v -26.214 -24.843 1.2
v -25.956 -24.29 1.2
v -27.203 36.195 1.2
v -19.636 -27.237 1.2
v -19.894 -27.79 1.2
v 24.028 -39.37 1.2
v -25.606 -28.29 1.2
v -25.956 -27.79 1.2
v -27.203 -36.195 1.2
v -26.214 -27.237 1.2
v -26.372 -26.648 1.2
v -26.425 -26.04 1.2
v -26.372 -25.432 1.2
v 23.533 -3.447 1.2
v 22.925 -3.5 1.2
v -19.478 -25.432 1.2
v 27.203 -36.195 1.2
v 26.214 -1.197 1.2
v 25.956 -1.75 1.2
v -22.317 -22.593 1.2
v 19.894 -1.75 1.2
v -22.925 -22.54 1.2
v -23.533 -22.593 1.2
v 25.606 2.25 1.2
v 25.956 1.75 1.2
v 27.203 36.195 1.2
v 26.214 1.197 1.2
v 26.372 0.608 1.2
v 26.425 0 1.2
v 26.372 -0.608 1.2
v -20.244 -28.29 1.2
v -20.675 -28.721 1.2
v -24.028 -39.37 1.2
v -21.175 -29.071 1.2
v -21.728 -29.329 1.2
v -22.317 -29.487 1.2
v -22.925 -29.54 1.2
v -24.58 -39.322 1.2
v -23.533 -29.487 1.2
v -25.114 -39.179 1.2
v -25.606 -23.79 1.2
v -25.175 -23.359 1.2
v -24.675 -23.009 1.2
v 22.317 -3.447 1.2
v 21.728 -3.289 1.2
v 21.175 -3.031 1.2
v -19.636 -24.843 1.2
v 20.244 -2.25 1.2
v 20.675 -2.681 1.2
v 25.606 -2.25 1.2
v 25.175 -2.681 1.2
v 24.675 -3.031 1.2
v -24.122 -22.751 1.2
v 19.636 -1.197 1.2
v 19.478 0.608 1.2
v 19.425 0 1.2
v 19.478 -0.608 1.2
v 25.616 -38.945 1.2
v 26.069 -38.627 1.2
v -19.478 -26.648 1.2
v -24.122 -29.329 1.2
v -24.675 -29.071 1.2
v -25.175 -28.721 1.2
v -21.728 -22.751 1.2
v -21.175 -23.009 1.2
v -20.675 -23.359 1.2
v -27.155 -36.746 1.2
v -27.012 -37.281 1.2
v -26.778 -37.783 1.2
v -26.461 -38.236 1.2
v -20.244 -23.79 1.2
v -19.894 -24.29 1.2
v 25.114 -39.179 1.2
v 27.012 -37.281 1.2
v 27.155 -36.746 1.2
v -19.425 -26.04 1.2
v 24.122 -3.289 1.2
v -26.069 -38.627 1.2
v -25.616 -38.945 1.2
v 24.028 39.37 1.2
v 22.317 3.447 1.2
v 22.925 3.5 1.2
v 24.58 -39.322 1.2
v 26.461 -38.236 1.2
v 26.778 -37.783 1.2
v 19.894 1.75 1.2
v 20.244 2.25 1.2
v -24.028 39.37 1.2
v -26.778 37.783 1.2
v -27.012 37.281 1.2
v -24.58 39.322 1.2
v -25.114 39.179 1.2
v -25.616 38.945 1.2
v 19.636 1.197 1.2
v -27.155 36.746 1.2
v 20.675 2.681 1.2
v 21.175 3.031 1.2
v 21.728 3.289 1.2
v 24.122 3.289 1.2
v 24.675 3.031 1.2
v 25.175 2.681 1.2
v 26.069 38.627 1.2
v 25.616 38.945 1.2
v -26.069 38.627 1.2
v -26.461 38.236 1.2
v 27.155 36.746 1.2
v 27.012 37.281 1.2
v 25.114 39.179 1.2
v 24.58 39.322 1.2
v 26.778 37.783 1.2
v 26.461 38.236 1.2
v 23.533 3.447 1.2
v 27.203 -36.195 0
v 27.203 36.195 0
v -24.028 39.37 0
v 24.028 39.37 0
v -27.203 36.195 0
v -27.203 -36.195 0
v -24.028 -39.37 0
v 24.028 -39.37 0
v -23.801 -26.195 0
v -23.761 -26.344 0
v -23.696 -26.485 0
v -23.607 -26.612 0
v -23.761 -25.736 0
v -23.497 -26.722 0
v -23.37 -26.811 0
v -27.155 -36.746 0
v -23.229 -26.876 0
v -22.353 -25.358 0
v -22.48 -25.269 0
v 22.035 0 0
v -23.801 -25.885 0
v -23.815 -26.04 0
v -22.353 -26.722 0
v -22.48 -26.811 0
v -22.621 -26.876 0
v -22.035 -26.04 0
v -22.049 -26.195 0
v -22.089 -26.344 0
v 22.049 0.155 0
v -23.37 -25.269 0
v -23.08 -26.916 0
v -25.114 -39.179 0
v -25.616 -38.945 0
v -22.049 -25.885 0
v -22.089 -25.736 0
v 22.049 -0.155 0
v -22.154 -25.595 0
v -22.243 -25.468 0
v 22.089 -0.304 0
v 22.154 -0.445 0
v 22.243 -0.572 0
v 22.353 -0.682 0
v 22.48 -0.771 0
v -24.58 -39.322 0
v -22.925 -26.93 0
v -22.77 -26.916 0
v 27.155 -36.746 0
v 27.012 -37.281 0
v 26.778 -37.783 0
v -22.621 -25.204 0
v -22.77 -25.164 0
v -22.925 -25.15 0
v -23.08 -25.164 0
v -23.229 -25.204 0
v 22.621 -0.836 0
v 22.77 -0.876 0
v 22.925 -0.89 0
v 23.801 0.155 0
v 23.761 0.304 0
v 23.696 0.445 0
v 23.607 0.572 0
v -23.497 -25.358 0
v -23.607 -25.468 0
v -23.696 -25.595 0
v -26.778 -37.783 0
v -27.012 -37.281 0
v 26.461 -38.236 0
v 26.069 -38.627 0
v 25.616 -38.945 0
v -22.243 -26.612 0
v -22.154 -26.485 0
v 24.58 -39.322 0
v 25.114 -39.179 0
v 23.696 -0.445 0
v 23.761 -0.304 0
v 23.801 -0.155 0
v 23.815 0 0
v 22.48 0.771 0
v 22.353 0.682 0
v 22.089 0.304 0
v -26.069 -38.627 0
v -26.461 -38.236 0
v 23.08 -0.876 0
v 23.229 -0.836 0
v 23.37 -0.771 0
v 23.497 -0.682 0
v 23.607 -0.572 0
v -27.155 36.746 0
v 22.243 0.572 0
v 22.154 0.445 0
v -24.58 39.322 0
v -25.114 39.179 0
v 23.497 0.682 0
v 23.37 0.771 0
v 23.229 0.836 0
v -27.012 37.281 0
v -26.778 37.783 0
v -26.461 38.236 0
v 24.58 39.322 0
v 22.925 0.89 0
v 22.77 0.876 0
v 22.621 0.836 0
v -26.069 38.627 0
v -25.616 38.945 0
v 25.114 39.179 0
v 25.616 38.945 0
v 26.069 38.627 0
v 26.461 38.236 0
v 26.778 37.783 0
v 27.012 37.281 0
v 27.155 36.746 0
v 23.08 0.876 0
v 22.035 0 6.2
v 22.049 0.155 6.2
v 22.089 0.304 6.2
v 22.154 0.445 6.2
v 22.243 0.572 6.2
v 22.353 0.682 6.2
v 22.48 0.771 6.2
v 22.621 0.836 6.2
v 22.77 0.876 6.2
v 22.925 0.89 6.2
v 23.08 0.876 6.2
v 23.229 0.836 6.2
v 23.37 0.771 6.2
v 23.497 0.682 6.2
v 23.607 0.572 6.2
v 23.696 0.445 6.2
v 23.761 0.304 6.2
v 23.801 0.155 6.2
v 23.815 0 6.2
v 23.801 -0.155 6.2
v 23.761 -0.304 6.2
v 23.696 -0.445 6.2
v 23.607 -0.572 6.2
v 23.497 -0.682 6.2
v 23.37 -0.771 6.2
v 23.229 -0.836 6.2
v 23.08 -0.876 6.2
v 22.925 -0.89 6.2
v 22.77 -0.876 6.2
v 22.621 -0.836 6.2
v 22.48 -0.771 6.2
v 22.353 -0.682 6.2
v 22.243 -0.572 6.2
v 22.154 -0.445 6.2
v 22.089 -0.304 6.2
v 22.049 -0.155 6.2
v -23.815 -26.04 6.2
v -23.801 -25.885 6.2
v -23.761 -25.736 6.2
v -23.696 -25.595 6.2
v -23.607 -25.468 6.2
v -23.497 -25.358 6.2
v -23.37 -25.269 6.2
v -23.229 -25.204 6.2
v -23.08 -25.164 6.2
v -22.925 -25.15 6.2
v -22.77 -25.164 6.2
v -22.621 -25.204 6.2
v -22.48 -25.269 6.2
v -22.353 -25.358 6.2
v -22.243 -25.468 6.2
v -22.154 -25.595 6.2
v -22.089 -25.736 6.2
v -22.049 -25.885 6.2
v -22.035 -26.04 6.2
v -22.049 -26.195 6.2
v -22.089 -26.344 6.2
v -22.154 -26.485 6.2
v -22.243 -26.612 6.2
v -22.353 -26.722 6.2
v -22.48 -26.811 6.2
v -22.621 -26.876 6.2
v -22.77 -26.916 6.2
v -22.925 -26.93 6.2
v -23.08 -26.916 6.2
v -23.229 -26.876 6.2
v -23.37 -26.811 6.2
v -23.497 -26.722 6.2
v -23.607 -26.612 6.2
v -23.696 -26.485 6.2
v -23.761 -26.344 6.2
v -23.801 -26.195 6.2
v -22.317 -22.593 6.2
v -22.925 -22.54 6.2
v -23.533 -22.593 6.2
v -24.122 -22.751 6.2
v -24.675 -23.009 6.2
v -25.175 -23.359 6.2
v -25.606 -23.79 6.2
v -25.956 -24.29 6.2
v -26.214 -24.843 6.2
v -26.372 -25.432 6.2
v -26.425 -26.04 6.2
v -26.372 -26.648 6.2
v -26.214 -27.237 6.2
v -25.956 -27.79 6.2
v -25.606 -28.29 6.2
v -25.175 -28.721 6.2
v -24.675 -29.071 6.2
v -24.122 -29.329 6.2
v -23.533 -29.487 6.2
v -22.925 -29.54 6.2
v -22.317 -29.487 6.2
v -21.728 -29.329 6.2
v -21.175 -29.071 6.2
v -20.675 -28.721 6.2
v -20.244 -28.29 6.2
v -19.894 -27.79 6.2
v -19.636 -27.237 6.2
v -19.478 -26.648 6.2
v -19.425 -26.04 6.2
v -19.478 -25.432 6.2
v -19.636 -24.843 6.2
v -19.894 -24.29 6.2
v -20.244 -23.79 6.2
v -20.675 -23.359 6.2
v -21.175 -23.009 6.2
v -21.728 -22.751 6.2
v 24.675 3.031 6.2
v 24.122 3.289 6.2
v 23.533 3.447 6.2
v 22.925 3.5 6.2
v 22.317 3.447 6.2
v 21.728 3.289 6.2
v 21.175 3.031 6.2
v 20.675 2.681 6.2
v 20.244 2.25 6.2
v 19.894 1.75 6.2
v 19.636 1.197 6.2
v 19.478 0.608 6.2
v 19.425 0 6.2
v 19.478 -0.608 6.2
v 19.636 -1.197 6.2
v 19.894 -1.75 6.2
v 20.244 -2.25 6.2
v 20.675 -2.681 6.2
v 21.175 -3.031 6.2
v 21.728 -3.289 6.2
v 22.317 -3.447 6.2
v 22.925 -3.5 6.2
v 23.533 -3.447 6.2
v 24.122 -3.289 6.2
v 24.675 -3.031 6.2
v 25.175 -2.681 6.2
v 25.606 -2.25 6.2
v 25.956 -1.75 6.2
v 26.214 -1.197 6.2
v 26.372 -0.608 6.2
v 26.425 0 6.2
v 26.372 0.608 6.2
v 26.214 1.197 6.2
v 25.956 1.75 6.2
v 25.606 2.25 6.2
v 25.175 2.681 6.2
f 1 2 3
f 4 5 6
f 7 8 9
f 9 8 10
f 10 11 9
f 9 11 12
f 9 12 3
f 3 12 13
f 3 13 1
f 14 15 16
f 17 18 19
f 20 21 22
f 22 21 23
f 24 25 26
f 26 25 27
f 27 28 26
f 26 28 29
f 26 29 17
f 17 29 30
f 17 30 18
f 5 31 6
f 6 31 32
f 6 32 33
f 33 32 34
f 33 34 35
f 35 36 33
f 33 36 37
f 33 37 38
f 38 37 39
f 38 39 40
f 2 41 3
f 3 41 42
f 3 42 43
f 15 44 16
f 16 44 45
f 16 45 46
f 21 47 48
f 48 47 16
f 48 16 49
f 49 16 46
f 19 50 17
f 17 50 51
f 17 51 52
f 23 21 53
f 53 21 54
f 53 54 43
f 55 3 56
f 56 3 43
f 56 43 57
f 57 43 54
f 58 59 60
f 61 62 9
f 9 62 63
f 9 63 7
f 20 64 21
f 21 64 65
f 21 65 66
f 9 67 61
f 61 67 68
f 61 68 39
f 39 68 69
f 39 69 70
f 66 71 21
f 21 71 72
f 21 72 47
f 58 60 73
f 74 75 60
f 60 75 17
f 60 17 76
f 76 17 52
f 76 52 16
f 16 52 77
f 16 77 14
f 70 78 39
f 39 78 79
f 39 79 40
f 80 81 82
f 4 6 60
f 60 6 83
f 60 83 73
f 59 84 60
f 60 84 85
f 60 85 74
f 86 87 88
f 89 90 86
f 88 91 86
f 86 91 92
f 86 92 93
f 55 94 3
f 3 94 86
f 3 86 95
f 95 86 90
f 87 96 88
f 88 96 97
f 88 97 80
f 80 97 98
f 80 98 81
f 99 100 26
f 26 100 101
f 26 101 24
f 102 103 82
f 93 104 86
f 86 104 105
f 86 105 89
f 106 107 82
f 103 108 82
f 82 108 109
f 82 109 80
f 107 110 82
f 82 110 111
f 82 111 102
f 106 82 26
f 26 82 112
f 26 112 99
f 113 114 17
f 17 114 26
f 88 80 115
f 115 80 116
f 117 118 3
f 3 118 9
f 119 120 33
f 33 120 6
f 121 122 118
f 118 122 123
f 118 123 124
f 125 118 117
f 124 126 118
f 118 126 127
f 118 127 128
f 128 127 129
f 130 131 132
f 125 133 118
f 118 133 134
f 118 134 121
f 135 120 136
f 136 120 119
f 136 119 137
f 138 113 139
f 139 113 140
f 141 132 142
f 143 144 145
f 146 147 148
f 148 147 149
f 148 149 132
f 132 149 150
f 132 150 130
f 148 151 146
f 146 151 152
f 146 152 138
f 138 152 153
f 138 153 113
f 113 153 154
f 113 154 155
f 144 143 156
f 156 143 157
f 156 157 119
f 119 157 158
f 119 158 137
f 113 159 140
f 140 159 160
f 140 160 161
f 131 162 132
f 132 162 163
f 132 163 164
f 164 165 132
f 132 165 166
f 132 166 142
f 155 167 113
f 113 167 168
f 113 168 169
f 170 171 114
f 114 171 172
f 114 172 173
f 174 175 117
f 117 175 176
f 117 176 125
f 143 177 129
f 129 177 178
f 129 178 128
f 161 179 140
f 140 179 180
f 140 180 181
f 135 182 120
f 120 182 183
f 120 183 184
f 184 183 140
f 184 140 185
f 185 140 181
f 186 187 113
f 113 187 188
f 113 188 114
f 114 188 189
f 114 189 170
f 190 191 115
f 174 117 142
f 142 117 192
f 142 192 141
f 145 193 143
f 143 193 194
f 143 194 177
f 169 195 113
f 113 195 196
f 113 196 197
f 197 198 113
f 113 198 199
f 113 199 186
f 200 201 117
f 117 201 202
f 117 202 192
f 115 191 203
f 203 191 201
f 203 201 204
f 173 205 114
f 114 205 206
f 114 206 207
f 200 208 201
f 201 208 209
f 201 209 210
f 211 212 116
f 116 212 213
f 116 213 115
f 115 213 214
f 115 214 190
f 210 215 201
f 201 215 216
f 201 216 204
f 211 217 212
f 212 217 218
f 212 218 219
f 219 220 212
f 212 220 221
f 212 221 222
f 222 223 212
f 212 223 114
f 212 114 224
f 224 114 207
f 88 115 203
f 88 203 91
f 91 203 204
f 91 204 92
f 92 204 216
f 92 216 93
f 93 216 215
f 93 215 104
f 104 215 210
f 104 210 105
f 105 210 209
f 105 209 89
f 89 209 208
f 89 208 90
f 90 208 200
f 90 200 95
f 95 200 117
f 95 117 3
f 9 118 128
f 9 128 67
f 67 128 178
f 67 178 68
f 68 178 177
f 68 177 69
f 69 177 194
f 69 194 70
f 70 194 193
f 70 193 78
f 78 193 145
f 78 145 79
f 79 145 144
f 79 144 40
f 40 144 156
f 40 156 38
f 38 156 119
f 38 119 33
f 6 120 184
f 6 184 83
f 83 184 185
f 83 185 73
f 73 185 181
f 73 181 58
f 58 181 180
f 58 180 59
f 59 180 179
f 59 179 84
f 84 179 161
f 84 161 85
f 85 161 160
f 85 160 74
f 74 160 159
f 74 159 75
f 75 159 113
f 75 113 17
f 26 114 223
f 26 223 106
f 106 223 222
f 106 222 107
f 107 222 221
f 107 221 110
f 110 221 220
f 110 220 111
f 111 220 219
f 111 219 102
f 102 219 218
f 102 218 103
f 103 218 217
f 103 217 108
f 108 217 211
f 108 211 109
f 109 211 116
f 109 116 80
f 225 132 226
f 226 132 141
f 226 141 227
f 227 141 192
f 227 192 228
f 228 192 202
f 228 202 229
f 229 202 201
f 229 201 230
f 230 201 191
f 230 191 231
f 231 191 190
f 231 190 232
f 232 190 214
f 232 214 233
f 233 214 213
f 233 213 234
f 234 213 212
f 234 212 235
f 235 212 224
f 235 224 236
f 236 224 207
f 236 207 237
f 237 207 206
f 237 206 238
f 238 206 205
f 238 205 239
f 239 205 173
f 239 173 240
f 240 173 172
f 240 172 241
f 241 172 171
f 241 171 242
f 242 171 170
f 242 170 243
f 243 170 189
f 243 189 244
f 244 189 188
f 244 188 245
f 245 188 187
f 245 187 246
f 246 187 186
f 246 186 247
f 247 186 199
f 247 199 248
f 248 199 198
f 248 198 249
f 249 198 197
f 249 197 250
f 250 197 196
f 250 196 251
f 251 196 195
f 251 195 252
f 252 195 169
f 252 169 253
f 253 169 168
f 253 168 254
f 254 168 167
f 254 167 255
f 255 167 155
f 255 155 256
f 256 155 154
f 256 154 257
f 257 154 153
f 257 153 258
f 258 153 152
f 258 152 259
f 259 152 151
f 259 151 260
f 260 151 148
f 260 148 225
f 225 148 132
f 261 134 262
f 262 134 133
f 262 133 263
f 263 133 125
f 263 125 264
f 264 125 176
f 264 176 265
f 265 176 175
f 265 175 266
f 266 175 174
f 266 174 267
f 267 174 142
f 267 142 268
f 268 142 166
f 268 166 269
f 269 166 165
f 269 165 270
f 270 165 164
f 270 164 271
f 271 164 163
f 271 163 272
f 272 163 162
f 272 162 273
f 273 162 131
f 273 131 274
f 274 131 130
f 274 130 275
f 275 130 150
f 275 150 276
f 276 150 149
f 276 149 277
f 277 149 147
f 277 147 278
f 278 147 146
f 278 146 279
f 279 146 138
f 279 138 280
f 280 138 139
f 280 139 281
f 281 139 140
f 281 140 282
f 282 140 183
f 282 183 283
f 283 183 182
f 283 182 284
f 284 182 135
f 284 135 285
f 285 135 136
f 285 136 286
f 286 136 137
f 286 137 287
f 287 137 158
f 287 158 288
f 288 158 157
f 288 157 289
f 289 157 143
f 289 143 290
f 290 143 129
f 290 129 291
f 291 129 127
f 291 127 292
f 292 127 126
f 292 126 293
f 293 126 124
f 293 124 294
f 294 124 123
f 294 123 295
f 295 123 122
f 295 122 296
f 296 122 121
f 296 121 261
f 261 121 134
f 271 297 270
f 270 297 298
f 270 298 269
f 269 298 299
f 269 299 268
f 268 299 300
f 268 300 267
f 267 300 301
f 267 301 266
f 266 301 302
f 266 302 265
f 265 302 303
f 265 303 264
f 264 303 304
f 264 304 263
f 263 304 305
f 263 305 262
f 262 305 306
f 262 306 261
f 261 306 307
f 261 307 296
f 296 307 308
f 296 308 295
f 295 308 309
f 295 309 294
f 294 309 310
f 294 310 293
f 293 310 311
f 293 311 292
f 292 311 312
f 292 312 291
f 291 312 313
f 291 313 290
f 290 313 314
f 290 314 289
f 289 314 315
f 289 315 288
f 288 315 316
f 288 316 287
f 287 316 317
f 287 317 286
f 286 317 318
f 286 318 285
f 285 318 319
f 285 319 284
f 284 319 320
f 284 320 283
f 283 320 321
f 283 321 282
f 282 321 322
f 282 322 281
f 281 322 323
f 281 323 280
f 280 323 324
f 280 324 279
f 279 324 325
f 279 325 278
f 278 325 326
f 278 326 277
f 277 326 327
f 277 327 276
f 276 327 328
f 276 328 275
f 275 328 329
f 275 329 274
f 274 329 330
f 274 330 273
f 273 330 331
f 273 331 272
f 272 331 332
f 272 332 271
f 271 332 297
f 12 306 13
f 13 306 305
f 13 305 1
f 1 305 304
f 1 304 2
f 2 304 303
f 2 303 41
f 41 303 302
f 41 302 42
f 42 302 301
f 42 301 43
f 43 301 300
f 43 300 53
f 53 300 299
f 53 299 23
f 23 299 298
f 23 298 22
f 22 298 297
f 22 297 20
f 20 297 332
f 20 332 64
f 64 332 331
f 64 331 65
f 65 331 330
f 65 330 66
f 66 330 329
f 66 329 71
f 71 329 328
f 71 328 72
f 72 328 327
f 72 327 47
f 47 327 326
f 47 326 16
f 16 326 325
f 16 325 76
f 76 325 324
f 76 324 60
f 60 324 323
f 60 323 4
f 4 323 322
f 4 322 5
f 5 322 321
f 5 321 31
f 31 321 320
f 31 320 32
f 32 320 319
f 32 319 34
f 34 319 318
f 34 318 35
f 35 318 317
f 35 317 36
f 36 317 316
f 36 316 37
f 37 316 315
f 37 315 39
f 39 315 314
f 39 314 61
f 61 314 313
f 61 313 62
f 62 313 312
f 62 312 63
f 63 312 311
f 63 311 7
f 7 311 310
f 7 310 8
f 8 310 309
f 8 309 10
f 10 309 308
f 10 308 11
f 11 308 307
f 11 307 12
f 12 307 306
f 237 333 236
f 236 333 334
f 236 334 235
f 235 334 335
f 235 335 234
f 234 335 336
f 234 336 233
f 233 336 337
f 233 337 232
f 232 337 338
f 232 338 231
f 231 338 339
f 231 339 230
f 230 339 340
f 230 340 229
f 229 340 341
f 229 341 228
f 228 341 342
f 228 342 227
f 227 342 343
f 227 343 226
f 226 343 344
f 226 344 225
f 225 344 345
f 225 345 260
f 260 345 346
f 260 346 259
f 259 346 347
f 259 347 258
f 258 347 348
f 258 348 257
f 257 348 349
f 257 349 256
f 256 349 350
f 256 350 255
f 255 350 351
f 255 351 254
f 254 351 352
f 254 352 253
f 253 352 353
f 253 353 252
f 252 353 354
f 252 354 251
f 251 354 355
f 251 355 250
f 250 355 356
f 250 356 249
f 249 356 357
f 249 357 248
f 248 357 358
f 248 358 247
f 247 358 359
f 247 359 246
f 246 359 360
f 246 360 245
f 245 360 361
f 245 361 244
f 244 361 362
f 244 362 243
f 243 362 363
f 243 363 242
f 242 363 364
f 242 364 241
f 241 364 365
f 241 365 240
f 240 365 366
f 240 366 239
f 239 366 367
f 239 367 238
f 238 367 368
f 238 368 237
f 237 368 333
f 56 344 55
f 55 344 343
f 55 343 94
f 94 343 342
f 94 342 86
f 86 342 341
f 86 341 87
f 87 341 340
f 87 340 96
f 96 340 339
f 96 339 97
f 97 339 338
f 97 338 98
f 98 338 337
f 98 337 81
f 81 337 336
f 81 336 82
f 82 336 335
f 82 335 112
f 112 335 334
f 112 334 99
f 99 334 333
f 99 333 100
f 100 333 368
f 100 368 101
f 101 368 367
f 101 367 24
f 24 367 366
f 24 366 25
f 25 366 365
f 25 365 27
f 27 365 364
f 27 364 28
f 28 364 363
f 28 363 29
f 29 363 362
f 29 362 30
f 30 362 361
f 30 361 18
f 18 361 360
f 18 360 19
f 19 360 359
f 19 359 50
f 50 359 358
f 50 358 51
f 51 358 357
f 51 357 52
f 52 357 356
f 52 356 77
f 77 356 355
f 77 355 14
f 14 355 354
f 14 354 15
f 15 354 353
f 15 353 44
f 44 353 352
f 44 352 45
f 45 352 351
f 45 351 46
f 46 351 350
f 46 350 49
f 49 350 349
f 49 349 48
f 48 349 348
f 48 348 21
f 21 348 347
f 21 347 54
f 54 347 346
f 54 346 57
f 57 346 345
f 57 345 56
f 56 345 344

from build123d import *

# Parameters (mm, degrees)
SKETCH1_W                      = 54.4068
SKETCH1_H                      = 78.74
BOSS_EXTRUDE1_DEPTH            = 1.2
FILLET1_R                      = 3.175
CUT_EXTRUDE1_REACH             = 49.869
SKETCH2_R                      = 0.89
CUT_EXTRUDE1_DIRECTION_2_DEPTH = 48.869216325
BOSS_EXTRUDE2_START            = 5
SKETCH4_R                      = 3.5
SKETCH4_R_2                    = 0.89
BOSS_EXTRUDE2_DEPTH            = 5


with BuildPart() as part:
    # Sketch1 → Boss-Extrude1 (new body)
    with BuildSketch(Plane.XY):
        Rectangle(SKETCH1_W, SKETCH1_H)
    extrude(amount=BOSS_EXTRUDE1_DEPTH)

    # Fillet1
    fillet1_edges = [part.edges().sort_by_distance(p)[0] for p in [
        (27.2034, -39.37, 0.6),
        (-27.2034, -39.37, 0.6),
        (-27.2034, 39.37, 0.6),
        (27.2034, 39.37, 0.6),
    ]]
    fillet(fillet1_edges, radius=FILLET1_R)

    # Sketch2 → Cut-Extrude1 (cut, up to next)
    with BuildSketch(Plane.XY.offset(1.2), mode=Mode.PRIVATE) as cut_extrude1_sk1:
        with Locations(Location((-22.925, -26.04, 0), (0, 0, 180))):
            Circle(SKETCH2_R)
    cut_extrude1_tool1 = extrude(cut_extrude1_sk1.sketch, amount=-CUT_EXTRUDE1_REACH, mode=Mode.PRIVATE) & part.part
    # Sketch2 → Cut-Extrude1 (cut, up to next)
    with BuildSketch(Plane.XY.offset(1.2), mode=Mode.PRIVATE) as cut_extrude1_sk2:
        with Locations(Location((22.925, 0, 0), (0, 0, 180))):
            Circle(SKETCH2_R)
    cut_extrude1_tool2 = extrude(cut_extrude1_sk2.sketch, amount=-CUT_EXTRUDE1_REACH, mode=Mode.PRIVATE) & part.part
    add(cut_extrude1_tool1.solids().sort_by_distance((-22.925, -26.04, 1.2))[0], mode=Mode.SUBTRACT)
    add(cut_extrude1_tool2.solids().sort_by_distance((22.925, 0, 1.2))[0], mode=Mode.SUBTRACT)

    # Sketch2 → Cut-Extrude1 direction 2 (cut)
    with BuildSketch(Plane.XY.offset(1.2)):
        with Locations(Location((-22.925, -26.04, 0), (0, 0, 180))):
            Circle(SKETCH2_R)
        with Locations(Location((22.925, 0, 0), (0, 0, 180))):
            Circle(SKETCH2_R)
    extrude(amount=CUT_EXTRUDE1_DIRECTION_2_DEPTH, mode=Mode.SUBTRACT)

    # Sketch4 → Boss-Extrude2 (add)
    # profile 1 of 2: a face of its own
    with BuildSketch(Plane.XY.offset(1.2).offset(BOSS_EXTRUDE2_START)):
        with Locations(Location((-22.925, -26.04, 0), (0, 0, 180))):
            Circle(SKETCH4_R)
        with Locations(Location((-22.925, -26.04, 0), (0, 0, 180))):
            Circle(SKETCH4_R_2, mode=Mode.SUBTRACT)
    # profile 2 of 2: a face of its own
    with BuildSketch(Plane.XY.offset(1.2).offset(BOSS_EXTRUDE2_START)):
        with Locations(Location((22.925, 0, 0), (0, 0, 180))):
            Circle(SKETCH4_R)
        with Locations(Location((22.925, 0, 0), (0, 0, 180))):
            Circle(SKETCH4_R_2, mode=Mode.SUBTRACT)
    extrude(amount=-BOSS_EXTRUDE2_DEPTH)


solid = part.part
